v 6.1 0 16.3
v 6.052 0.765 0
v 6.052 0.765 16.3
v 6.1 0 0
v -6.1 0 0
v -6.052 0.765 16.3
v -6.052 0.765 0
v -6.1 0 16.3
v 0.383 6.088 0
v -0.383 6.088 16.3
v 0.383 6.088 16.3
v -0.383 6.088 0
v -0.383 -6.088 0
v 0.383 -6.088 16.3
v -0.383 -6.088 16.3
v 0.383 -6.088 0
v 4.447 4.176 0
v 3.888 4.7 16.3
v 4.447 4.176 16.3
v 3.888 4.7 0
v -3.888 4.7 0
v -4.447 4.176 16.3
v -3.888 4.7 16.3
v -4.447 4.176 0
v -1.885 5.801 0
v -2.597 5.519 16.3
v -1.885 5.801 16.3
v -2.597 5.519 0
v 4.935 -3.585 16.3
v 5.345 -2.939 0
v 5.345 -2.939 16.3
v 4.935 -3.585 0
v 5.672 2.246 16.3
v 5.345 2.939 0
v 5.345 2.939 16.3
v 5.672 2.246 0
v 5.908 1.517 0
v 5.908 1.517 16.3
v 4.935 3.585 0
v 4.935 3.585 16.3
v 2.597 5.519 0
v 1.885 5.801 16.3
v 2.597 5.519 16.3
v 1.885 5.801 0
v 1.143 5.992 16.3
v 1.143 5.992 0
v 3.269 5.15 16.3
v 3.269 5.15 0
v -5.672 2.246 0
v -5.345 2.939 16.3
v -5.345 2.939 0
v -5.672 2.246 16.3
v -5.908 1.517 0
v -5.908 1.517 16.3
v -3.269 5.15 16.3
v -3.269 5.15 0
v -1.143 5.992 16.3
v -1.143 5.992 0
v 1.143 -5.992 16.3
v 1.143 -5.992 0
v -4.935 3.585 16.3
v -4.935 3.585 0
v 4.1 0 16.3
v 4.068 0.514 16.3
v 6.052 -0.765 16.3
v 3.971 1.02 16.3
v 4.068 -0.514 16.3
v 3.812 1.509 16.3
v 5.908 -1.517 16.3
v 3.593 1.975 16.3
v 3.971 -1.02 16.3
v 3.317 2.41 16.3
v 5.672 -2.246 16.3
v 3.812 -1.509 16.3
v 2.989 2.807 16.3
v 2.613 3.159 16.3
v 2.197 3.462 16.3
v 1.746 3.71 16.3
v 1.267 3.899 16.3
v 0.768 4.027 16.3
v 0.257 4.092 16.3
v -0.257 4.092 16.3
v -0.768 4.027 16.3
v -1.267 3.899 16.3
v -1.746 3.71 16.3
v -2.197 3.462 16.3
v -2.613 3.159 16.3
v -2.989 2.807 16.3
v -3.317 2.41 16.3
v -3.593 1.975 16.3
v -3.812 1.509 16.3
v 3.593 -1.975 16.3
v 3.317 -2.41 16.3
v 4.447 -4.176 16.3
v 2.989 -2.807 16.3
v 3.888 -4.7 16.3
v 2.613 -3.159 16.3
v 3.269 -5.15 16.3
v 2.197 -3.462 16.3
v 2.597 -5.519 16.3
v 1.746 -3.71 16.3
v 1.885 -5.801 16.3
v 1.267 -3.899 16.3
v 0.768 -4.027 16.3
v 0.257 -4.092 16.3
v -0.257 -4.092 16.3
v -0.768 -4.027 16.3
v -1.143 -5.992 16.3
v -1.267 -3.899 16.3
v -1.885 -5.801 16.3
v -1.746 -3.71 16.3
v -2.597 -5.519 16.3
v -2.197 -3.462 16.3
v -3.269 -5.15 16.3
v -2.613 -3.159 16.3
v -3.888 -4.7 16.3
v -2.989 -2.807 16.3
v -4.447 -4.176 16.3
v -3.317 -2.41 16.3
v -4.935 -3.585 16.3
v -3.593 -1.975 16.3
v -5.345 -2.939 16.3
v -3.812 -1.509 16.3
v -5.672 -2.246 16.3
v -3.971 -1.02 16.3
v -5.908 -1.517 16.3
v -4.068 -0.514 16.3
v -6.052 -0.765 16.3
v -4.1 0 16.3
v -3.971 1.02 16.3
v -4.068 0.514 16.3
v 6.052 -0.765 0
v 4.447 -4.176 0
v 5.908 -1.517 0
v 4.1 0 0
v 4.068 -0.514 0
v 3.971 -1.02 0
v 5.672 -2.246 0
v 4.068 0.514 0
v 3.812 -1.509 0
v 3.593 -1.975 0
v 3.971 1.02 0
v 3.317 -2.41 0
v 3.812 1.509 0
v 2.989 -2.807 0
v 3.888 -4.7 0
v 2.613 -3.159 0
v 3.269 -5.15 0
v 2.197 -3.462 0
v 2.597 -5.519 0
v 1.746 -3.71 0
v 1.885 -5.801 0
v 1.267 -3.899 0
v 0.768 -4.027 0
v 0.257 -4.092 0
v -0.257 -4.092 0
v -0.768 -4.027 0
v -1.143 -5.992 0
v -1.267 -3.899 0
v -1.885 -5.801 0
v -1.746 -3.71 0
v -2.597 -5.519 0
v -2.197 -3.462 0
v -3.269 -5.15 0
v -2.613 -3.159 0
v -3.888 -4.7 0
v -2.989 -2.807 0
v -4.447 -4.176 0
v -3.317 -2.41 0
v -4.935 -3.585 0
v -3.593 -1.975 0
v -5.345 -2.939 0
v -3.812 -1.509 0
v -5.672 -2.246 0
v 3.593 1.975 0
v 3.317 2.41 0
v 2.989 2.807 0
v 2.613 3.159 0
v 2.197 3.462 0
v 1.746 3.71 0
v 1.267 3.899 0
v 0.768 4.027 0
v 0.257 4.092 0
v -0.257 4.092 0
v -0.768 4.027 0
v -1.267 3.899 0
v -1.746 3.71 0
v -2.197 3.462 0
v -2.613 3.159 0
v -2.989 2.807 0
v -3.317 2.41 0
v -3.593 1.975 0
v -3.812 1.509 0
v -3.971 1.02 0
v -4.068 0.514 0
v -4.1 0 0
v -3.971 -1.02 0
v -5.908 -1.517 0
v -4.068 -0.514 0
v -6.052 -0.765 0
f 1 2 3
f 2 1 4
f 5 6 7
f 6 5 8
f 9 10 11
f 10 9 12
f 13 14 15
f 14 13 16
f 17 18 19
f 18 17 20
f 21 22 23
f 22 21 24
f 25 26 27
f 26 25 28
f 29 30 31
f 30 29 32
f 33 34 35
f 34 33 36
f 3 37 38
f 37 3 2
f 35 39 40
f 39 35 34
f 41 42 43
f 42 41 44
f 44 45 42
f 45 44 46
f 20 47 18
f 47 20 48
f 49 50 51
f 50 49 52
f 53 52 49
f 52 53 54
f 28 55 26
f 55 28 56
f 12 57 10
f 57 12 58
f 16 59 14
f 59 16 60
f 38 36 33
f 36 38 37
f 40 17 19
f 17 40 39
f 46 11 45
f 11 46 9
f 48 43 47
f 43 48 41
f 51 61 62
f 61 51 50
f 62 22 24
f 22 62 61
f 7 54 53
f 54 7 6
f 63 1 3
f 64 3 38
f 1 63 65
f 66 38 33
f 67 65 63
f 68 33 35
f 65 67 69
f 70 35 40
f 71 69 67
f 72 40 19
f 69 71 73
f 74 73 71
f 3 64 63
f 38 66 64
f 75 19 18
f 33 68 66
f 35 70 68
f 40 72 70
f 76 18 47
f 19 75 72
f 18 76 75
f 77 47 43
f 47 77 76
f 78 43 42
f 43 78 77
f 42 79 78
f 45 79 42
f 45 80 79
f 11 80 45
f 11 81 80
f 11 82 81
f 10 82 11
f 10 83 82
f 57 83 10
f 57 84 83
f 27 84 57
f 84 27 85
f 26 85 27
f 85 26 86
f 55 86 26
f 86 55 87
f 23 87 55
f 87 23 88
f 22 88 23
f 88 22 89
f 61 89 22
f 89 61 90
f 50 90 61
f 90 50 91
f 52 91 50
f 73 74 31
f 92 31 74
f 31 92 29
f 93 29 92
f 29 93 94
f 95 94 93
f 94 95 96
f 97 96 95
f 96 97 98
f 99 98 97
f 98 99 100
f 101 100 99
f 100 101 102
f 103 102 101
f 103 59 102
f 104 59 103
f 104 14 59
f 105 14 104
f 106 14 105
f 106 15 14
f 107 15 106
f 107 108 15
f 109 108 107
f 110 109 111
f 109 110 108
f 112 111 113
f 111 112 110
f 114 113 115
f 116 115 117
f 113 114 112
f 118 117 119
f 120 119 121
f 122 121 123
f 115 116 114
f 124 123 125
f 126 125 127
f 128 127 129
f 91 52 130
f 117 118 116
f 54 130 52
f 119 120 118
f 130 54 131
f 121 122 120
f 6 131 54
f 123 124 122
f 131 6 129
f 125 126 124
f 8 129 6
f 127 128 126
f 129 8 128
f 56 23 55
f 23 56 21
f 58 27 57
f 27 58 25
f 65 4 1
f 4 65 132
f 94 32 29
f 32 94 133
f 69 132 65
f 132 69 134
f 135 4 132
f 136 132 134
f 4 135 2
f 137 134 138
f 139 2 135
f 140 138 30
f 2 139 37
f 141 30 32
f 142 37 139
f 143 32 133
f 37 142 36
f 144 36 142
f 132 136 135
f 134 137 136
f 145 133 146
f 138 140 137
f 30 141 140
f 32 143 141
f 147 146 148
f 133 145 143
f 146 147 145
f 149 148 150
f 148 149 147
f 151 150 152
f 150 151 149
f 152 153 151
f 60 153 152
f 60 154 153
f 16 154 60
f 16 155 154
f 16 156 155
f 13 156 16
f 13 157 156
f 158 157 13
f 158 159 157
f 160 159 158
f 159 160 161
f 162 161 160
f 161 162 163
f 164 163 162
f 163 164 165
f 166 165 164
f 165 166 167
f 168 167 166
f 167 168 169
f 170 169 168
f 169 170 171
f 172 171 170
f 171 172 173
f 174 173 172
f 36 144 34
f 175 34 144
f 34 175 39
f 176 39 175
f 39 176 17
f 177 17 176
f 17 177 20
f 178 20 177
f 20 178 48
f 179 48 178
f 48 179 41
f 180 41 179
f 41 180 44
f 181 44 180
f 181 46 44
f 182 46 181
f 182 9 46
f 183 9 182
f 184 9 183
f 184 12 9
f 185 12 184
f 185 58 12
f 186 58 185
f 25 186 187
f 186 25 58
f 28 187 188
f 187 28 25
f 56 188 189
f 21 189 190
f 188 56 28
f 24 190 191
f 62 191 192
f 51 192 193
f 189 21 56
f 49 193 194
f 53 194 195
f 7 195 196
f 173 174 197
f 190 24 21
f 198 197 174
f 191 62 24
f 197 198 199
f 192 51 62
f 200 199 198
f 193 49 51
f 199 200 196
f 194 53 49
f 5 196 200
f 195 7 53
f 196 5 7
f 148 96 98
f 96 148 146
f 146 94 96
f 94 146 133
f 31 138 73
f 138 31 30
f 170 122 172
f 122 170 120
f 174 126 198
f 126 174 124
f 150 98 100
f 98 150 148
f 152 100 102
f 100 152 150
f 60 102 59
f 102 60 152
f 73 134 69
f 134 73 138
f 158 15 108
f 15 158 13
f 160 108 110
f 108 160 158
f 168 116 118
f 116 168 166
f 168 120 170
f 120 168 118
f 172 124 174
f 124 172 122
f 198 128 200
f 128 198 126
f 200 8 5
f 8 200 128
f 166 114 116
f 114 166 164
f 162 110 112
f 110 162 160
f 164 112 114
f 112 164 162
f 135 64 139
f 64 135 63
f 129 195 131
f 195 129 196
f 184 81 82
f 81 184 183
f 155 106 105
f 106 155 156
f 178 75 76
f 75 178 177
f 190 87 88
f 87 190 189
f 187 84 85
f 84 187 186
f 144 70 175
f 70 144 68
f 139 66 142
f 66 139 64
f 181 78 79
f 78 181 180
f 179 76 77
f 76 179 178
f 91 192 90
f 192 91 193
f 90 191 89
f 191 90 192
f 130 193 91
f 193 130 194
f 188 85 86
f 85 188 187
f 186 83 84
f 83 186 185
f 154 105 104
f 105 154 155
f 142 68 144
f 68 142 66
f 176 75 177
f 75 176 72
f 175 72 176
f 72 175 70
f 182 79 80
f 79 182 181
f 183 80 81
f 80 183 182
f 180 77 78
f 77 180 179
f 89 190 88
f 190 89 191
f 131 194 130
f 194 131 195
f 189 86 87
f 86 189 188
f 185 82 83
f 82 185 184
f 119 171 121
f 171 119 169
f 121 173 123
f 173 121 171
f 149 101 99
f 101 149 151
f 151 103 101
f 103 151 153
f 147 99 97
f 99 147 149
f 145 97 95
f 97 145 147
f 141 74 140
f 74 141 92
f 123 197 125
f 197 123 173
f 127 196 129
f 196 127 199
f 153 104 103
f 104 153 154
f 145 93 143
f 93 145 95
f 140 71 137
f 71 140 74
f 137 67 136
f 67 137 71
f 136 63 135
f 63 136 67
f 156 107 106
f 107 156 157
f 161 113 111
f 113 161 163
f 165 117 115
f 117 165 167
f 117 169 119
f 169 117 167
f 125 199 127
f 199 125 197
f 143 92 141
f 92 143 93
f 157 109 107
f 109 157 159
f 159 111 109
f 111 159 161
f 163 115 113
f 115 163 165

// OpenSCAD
// file: ../parameters.scad
maximum_printable_size = 150;

layer_thickness = 0.3;
global_clearance = 0.5;


// scale parameters
tower_height = 220;
mid_base_width = 400;
mid_base_height = 160;
mid_base_length = 300;
base_mid_base_hinge_offset = 50;
counterweight_length = 200;


//Screw diameter and nut for M10 [mm]
M10_screw_diameter = 10.4;
M10_head_height = 10;
M10_head_diameter = 16+0.5;
M10_nut_height = 10.5;
M10_nut_diameter = 25.5;
M10_nut_pocket = 22.3;

//Screw diameter for M8 [mm]
M8_screw_diameter = 8.6;
M8_head_height = 8;
M8_head_diameter = 13.5;
M8_nut_height = 7.5;
M8_square_nut_thin_height = 4.5;
M8_nut_diameter = 14.4 + 0.5;
M8_nut_pocket = 13 + 0.5;
M8_washer_diameter = 16;
M8_washer_thickness = 1.5;


//Screw diameter and nut for M6 [mm]
M6_screw_diameter=6.5;
M6_head_diameter = 10+0.5;
M6_head_height = 6;
M6_nut_height = 4.9;
M6_nut_diameter = 11.8;
M6_nut_pocket = 10.4;
M6_square_nut_height = 3;
M6_square_nut_diameter = 10;
M6_washer_thickness = 1.6;

//Screw diameter and nut for M5 [mm]
M5_screw_diameter=5.5;
M5_head_height = 5;
M5_head_diameter = 13+0.5;
M5_nut_height = 4.5;
M5_nut_diameter = 9.4;
M5_nut_pocket = 8.4;

//Screw diameter and nut for M4 [mm]
M4_screw_diameter=4.5;
M4_screw_head_height = 4;
M4_nut_height = 3.2;
M4_nut_diameter = 8.4;
M4_nut_pocket = 7.5;

//Screw diameter and nut for M3 [mm]
M3_screw_diameter = 3.2;
M3_nut_height = 2.7;
M3_nut_diameter = 6.6;
M3_nut_pocket = 5.6;
M3_screw_head_height = 3;

//Screw diameter and nut for M2,5 [mm]
M2_5_screw_diameter = 2.7;
M2_5_nut_height = 2.3;
M2_5_nut_diameter = 6;
M2_5_nut_pocket = 5.5;

// kulove lozisko

bearing_efsm_08_h = 33+1;
bearing_efsm_08_m = 22;
bearing_efsm_08_db = 18;
bearing_efsm_08_ag = 10.5;
bearing_efsm_08_n = M4_screw_diameter;
bearing_efsm_08_a1 = 5.5;
bearing_efsm_08_d = 8.25;
bearing_efsm_08_B = 8; // ball height

bearing_efsm_10_h = 38+1;
bearing_efsm_10_m = 26;
bearing_efsm_10_db = 21.9;
bearing_efsm_10_ag = 12+0.2;
bearing_efsm_10_n = M5_screw_diameter;
bearing_efsm_10_a1 = 6.5;
bearing_efsm_10_d = 10.25;


bearing_efsm_12_width = 40+1;
bearing_efsm_12_h = bearing_efsm_12_width;
bearing_efsm_12_boltd = 28/2; // polovina vzdalenosti mezi srouby
bearing_efsm_12_m = bearing_efsm_12_boltd*2;
bearing_efsm_12_db = 25;
bearing_efsm_12_ag = 13;
bearing_efsm_12_a1 = 7;
bearing_efsm_12_n = M5_screw_diameter;
bearing_efsm_12_d = 12.15;
bearing_efsm_12_B = 10; // ball height
bearing_efsm_space = 1;

bearing_efsm_17_width = 54+1;
bearing_efsm_17_h = bearing_efsm_17_width;
bearing_efsm_17_boltd = 38/2; // polovina vzdalenosti mezi srouby
bearing_efsm_17_m = bearing_efsm_17_boltd*2;
bearing_efsm_17_db = 35;
bearing_efsm_17_ag = 18;
bearing_efsm_17_n = M6_screw_diameter;
bearing_efsm_17_a1 = 10;
bearing_efsm_17_B = 17; // ball height

//limcove lozisko
bearing_EFOM_10_L=26; //celkova sirka zakladny
bearing_EFOM_10_d1=10.3;//diametr otvoru real=10 mm
bearing_EFOM_10_dB=22;//diametr vystupku pro ulozeni lozika
bearing_EFOM_10_H=52;//celková delka zakladny
bearing_EFOM_10_J=36;// hole pitch
bearing_EFOM_10_A1=6.5;//vyska pouzdra
bearing_EFOM_10_Ag=12;//celkova vyska
bearing_EFOM_10_N1=5;//sirka otvoru pro sroub
bearing_EFOM_10_N2=8;//delka otvoru pro sroub
bearing_EFOM_10_m=36;//roztec der pro sroub
bearing_EFOM_10_h=9;//vyska lozika


608_bearing_outer_diameter = 22.3;
608_bearing_inner_diameter = 16;
608_bearing_thickness = 7.1;


// 20 KG servo parameters

servo_20kg_axis_offset = 9.375; // jak je osa mimo stredu
servo_20kg_body_x = 42;
servo_20kg_body_y = 21;
servo_20kg_body_z = 40;
servo_20kg_thread_x = 49/2;
servo_20kg_thread_y = 10/2;
servo_20kg_body_below = 10; // jak hluboko je tělo serva pod drzaky na srouby
servo_20kg_below = 25.8; // jak hluboko je páka serva pod drzaky na srouby

servo_20kg_bolt_d = 2.5+0.3;
servo_20kg_nut_d = 5+0.3;


//strain gauge
strain_gauge_width = 12.7;
strain_gauge_length = 75.1;
strain_gauge_screw_distance = 10;

//ALU profile
ALU_profile_width = 30.5;
ALU_profile_holder_wall_thickness = 3;
ALU_profile_groove_width = 8;

//pillow block bearing
//https://www.igus.eu/product/372
//Part no. KSTM-08
KSTM08_screws_distance = 33;         //m
KSTM08_screws_holes_diameter = 4.5;  //d2
KSTM08_flange_thickness = 6;         //h3
KSTM08_case_width = 9;               //C1
KSTM08_case_length = 47;             //a
KSTM08_ball_width = 12;              //B
KSTM08_ball_hole_diameter = 7.85;    //d1


//ložiska pro malý rotor
bearing_outer_diameter = 10.2;    // Rozměr B1 v nákresu s přídavkem na toleranci otvoru
bearing_thickness = 4;        // Rozměr B2 v nákresu
//bearing_shaft_length = 19.5;    // Rozměr B3 v nákresu, Originalni hodnota 19.5
bearing_shaft_length = 20;    // Rozměr B3 v nákresu


//parametry víčka s telemetrickou anténou
S01_sila_materialu=1.2;
S01_vyska_horni_zavit=10;
S01_hloubka_zavitu=4;
S01_prumer_vnitrni=50;
LO_spodni_prumer=17.2;
LO_vyska_bez_krytu=15;
S01_tolerance_zavit=1.5;
R01_vyska_prekryti_statoru=10;

g3_0_cone1 = 70;
g3_0_srcew_dist = 55;
// main file
include <../parameters.scad>

module 888_5011() {
    difference() {
        cylinder(d=8+0.2+4, h=ALU_profile_width-608_bearing_thickness*2, $fn=50);
        
        translate([0, 0, -ALU_profile_holder_wall_thickness])
        cylinder(d=8+0.2, h=ALU_profile_width+ALU_profile_holder_wall_thickness*4, $fn=50);
    }
}

888_5011();
